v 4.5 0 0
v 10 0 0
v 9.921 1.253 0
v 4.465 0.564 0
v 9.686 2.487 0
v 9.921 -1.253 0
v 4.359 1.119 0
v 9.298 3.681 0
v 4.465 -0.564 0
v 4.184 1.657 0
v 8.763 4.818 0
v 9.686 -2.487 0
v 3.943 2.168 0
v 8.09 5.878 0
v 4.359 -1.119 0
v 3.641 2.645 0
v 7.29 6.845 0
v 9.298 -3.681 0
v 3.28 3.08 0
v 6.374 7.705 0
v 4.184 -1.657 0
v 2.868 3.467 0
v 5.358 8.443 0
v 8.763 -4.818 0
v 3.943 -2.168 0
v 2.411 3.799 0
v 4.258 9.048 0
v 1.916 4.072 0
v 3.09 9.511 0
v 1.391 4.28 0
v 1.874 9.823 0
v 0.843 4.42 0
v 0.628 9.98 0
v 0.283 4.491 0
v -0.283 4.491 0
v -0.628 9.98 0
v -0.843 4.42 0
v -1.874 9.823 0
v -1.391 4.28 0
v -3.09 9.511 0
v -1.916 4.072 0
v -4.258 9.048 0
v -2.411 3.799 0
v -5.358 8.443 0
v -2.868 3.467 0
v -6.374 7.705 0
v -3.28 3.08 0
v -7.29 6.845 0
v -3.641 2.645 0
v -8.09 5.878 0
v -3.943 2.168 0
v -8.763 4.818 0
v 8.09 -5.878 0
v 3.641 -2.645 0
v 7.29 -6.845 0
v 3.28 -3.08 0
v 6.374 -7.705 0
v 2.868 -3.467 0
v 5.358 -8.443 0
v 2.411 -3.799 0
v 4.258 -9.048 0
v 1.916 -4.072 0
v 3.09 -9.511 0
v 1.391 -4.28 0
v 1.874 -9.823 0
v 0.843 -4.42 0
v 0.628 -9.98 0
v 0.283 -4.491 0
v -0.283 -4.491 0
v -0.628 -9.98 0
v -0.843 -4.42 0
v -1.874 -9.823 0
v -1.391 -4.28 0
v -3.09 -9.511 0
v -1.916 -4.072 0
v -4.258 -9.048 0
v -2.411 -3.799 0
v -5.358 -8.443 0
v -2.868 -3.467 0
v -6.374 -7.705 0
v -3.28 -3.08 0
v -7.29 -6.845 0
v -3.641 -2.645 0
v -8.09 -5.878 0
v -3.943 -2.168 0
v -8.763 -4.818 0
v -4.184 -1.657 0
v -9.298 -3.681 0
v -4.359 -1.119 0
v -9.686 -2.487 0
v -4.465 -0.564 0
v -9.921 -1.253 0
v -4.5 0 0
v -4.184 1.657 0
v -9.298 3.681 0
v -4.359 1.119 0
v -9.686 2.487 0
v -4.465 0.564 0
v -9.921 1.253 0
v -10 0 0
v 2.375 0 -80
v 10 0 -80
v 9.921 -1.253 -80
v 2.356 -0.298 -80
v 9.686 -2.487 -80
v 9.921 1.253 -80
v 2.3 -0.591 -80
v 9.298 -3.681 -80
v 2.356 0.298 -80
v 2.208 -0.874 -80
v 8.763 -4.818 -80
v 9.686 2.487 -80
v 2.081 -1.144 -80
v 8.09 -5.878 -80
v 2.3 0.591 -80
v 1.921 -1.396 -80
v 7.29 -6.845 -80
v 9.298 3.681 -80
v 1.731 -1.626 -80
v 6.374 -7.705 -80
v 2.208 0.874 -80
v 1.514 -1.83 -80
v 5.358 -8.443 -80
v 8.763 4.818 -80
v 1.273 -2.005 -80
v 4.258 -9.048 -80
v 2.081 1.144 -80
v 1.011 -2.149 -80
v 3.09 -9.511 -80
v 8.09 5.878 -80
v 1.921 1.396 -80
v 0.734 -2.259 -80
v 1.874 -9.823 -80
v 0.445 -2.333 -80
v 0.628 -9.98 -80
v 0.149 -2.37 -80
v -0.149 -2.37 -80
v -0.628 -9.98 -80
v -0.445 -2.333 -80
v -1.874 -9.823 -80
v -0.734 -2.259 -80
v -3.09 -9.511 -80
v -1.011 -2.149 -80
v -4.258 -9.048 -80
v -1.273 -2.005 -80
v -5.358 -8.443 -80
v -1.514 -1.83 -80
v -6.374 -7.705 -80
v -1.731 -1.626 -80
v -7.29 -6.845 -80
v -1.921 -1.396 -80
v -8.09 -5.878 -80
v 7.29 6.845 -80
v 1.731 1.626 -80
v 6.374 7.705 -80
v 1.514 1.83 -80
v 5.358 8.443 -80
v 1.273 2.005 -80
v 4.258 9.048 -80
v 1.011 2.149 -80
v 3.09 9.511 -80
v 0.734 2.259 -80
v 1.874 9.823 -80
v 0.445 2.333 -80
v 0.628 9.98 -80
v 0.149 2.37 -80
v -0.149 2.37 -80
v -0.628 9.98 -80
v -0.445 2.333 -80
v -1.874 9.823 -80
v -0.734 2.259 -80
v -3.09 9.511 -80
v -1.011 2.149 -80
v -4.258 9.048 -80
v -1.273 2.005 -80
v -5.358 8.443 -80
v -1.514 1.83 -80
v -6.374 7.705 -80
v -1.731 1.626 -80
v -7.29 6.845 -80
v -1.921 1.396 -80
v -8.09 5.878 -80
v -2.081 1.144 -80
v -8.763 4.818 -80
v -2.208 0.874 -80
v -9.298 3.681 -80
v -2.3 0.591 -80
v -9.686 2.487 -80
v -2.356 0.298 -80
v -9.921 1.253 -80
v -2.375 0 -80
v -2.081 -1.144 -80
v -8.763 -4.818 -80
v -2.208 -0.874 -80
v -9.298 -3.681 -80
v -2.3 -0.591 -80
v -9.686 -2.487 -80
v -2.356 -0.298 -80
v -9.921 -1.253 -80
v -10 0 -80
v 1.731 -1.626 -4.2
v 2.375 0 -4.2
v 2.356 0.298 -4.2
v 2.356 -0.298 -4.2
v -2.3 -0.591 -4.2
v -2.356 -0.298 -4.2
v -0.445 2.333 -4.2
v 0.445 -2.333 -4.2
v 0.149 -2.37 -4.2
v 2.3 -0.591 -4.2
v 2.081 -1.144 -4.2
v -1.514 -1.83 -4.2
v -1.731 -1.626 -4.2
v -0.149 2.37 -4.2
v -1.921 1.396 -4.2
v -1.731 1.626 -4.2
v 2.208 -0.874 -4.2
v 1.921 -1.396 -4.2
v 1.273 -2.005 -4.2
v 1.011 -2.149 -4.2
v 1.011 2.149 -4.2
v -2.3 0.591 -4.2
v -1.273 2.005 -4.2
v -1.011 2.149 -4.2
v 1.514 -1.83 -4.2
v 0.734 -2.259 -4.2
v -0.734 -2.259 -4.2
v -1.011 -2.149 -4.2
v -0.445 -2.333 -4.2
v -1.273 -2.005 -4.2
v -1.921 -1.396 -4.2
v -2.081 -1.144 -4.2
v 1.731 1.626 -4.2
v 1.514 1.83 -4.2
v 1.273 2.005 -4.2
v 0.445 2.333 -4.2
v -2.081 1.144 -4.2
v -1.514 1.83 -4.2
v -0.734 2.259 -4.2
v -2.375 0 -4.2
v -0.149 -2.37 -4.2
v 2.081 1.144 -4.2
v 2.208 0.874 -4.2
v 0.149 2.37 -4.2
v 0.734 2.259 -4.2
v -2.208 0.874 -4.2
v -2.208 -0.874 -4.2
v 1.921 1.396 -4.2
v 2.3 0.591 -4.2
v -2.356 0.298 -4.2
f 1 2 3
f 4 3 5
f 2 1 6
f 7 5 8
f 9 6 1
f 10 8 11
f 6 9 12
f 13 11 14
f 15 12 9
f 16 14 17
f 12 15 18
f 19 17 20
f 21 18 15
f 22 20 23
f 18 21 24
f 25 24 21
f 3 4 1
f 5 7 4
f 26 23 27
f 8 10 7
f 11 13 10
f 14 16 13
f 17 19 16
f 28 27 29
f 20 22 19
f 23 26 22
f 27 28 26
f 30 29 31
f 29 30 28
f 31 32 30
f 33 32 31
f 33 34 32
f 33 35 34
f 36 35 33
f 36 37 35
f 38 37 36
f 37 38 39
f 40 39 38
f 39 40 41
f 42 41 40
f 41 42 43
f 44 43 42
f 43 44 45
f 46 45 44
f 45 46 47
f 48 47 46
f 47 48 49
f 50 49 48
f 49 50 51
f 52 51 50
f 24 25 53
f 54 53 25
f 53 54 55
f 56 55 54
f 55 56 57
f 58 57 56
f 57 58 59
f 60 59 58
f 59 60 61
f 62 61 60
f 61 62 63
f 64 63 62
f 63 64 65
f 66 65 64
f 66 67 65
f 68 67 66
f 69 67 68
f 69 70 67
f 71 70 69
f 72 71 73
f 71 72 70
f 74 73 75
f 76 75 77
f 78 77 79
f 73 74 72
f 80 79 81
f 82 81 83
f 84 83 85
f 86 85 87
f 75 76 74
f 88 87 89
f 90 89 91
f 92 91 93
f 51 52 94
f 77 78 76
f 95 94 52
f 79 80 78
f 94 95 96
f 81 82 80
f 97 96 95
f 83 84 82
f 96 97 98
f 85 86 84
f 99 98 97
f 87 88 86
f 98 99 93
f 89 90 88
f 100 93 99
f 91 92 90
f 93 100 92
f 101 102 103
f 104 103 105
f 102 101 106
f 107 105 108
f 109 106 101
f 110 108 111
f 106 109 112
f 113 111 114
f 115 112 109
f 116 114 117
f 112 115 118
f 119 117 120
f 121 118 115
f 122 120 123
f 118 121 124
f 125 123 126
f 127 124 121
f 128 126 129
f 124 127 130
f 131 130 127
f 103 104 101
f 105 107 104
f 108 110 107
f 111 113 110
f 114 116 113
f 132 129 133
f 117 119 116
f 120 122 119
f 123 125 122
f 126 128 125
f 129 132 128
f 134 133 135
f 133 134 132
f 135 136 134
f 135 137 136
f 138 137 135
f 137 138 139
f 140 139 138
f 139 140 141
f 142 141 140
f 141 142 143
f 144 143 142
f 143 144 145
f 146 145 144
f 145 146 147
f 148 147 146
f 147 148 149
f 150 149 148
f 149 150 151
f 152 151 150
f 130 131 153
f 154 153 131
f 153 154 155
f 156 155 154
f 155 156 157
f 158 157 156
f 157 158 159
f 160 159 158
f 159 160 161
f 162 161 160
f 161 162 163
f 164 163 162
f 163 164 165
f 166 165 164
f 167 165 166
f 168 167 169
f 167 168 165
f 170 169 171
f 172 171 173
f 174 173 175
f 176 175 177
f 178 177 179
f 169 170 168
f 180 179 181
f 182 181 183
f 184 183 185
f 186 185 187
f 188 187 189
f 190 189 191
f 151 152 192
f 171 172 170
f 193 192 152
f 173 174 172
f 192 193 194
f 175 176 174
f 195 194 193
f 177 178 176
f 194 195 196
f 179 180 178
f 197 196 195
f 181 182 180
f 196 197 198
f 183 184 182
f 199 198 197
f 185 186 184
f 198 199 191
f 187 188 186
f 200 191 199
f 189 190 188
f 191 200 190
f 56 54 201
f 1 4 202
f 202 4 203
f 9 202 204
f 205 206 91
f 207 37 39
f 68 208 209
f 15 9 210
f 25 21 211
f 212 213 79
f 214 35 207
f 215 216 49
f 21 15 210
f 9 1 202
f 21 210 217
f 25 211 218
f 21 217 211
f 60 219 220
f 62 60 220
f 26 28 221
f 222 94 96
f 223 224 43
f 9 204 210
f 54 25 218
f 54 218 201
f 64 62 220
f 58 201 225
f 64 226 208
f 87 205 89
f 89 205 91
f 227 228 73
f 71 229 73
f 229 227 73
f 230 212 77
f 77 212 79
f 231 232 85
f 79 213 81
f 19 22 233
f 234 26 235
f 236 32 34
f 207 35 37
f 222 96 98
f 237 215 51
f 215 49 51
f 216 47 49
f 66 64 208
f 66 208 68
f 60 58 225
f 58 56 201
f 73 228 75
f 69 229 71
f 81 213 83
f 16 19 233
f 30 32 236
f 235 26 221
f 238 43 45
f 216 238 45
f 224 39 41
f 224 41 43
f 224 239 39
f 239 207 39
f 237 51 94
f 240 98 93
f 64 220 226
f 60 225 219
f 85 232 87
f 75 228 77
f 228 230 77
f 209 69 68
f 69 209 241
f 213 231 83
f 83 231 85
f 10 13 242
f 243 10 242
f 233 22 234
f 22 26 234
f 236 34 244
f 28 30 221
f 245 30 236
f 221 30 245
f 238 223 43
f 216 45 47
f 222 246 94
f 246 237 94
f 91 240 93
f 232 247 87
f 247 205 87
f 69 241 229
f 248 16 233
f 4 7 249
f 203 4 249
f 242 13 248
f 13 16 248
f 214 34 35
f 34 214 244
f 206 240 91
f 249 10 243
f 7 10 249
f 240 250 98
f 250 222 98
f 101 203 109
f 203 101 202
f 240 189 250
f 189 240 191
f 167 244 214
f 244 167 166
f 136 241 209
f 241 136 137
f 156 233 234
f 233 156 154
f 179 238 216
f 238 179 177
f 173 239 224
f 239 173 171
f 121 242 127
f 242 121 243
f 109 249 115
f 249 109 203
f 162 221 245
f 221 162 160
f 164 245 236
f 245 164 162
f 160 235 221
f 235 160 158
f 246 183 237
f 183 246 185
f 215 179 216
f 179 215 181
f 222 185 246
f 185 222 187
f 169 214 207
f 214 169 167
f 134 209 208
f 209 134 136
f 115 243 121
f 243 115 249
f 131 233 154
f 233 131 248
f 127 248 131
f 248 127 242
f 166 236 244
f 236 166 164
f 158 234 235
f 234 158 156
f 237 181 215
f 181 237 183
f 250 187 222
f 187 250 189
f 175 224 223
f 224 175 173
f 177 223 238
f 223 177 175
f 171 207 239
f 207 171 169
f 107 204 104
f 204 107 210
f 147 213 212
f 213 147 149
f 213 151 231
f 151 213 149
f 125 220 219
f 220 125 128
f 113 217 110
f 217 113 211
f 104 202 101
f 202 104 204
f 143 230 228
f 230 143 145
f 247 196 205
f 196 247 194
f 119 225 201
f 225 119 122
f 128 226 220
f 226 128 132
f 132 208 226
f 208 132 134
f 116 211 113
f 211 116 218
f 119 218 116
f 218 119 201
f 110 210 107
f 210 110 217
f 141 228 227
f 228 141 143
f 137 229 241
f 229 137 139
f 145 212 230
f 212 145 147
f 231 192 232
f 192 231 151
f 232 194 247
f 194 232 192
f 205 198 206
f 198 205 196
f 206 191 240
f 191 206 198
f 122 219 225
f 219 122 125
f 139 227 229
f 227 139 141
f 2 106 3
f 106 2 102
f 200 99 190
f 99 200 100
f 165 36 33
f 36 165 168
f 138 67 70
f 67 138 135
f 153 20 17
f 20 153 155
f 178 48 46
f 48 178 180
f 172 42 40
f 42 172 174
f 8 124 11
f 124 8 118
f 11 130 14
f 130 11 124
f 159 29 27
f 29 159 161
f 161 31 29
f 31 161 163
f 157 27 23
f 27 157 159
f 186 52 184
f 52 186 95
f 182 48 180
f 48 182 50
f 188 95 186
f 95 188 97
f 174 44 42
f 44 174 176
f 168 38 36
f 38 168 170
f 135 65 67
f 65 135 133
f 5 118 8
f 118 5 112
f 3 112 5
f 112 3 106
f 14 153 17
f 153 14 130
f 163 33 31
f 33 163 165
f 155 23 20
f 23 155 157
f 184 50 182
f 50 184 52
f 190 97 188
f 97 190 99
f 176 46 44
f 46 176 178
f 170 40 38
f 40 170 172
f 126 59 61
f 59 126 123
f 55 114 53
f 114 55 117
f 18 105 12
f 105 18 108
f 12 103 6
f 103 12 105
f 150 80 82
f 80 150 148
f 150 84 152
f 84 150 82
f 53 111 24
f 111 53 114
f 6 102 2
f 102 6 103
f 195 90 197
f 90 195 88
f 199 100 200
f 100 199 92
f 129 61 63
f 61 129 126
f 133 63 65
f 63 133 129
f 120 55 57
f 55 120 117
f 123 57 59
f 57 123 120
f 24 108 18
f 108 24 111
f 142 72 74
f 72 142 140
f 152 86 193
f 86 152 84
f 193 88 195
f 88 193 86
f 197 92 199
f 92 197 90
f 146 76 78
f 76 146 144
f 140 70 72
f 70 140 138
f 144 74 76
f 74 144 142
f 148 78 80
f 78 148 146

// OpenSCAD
$fn = 50;


difference() {
	union() {
		translate(v = [0, 0, -80.0000000000]) {
			cylinder(h = 80, r = 10.0000000000);
		}
		cylinder(h = 0, r = 16.0000000000);
	}
	union() {
		translate(v = [0, 0, 0]) {
			rotate(a = [0, 0, 0]) {
				difference() {
					union() {
						#translate(v = [0, 0, -80.0000000000]) {
							cylinder(h = 80, r = 2.2500000000);
						}
						#translate(v = [0, 0, -4.2000000000]) {
							cylinder(h = 4.2000000000, r = 10.0000000000, r1 = 2.3750000000, r2 = 4.5000000000);
						}
						#translate(v = [0, 0, -80.0000000000]) {
							cylinder(h = 80, r = 2.3750000000);
						}
						#translate(v = [0, 0, -80.0000000000]) {
							cylinder(h = 80, r = 2.2500000000);
						}
					}
					union();
				}
			}
		}
	}
}
